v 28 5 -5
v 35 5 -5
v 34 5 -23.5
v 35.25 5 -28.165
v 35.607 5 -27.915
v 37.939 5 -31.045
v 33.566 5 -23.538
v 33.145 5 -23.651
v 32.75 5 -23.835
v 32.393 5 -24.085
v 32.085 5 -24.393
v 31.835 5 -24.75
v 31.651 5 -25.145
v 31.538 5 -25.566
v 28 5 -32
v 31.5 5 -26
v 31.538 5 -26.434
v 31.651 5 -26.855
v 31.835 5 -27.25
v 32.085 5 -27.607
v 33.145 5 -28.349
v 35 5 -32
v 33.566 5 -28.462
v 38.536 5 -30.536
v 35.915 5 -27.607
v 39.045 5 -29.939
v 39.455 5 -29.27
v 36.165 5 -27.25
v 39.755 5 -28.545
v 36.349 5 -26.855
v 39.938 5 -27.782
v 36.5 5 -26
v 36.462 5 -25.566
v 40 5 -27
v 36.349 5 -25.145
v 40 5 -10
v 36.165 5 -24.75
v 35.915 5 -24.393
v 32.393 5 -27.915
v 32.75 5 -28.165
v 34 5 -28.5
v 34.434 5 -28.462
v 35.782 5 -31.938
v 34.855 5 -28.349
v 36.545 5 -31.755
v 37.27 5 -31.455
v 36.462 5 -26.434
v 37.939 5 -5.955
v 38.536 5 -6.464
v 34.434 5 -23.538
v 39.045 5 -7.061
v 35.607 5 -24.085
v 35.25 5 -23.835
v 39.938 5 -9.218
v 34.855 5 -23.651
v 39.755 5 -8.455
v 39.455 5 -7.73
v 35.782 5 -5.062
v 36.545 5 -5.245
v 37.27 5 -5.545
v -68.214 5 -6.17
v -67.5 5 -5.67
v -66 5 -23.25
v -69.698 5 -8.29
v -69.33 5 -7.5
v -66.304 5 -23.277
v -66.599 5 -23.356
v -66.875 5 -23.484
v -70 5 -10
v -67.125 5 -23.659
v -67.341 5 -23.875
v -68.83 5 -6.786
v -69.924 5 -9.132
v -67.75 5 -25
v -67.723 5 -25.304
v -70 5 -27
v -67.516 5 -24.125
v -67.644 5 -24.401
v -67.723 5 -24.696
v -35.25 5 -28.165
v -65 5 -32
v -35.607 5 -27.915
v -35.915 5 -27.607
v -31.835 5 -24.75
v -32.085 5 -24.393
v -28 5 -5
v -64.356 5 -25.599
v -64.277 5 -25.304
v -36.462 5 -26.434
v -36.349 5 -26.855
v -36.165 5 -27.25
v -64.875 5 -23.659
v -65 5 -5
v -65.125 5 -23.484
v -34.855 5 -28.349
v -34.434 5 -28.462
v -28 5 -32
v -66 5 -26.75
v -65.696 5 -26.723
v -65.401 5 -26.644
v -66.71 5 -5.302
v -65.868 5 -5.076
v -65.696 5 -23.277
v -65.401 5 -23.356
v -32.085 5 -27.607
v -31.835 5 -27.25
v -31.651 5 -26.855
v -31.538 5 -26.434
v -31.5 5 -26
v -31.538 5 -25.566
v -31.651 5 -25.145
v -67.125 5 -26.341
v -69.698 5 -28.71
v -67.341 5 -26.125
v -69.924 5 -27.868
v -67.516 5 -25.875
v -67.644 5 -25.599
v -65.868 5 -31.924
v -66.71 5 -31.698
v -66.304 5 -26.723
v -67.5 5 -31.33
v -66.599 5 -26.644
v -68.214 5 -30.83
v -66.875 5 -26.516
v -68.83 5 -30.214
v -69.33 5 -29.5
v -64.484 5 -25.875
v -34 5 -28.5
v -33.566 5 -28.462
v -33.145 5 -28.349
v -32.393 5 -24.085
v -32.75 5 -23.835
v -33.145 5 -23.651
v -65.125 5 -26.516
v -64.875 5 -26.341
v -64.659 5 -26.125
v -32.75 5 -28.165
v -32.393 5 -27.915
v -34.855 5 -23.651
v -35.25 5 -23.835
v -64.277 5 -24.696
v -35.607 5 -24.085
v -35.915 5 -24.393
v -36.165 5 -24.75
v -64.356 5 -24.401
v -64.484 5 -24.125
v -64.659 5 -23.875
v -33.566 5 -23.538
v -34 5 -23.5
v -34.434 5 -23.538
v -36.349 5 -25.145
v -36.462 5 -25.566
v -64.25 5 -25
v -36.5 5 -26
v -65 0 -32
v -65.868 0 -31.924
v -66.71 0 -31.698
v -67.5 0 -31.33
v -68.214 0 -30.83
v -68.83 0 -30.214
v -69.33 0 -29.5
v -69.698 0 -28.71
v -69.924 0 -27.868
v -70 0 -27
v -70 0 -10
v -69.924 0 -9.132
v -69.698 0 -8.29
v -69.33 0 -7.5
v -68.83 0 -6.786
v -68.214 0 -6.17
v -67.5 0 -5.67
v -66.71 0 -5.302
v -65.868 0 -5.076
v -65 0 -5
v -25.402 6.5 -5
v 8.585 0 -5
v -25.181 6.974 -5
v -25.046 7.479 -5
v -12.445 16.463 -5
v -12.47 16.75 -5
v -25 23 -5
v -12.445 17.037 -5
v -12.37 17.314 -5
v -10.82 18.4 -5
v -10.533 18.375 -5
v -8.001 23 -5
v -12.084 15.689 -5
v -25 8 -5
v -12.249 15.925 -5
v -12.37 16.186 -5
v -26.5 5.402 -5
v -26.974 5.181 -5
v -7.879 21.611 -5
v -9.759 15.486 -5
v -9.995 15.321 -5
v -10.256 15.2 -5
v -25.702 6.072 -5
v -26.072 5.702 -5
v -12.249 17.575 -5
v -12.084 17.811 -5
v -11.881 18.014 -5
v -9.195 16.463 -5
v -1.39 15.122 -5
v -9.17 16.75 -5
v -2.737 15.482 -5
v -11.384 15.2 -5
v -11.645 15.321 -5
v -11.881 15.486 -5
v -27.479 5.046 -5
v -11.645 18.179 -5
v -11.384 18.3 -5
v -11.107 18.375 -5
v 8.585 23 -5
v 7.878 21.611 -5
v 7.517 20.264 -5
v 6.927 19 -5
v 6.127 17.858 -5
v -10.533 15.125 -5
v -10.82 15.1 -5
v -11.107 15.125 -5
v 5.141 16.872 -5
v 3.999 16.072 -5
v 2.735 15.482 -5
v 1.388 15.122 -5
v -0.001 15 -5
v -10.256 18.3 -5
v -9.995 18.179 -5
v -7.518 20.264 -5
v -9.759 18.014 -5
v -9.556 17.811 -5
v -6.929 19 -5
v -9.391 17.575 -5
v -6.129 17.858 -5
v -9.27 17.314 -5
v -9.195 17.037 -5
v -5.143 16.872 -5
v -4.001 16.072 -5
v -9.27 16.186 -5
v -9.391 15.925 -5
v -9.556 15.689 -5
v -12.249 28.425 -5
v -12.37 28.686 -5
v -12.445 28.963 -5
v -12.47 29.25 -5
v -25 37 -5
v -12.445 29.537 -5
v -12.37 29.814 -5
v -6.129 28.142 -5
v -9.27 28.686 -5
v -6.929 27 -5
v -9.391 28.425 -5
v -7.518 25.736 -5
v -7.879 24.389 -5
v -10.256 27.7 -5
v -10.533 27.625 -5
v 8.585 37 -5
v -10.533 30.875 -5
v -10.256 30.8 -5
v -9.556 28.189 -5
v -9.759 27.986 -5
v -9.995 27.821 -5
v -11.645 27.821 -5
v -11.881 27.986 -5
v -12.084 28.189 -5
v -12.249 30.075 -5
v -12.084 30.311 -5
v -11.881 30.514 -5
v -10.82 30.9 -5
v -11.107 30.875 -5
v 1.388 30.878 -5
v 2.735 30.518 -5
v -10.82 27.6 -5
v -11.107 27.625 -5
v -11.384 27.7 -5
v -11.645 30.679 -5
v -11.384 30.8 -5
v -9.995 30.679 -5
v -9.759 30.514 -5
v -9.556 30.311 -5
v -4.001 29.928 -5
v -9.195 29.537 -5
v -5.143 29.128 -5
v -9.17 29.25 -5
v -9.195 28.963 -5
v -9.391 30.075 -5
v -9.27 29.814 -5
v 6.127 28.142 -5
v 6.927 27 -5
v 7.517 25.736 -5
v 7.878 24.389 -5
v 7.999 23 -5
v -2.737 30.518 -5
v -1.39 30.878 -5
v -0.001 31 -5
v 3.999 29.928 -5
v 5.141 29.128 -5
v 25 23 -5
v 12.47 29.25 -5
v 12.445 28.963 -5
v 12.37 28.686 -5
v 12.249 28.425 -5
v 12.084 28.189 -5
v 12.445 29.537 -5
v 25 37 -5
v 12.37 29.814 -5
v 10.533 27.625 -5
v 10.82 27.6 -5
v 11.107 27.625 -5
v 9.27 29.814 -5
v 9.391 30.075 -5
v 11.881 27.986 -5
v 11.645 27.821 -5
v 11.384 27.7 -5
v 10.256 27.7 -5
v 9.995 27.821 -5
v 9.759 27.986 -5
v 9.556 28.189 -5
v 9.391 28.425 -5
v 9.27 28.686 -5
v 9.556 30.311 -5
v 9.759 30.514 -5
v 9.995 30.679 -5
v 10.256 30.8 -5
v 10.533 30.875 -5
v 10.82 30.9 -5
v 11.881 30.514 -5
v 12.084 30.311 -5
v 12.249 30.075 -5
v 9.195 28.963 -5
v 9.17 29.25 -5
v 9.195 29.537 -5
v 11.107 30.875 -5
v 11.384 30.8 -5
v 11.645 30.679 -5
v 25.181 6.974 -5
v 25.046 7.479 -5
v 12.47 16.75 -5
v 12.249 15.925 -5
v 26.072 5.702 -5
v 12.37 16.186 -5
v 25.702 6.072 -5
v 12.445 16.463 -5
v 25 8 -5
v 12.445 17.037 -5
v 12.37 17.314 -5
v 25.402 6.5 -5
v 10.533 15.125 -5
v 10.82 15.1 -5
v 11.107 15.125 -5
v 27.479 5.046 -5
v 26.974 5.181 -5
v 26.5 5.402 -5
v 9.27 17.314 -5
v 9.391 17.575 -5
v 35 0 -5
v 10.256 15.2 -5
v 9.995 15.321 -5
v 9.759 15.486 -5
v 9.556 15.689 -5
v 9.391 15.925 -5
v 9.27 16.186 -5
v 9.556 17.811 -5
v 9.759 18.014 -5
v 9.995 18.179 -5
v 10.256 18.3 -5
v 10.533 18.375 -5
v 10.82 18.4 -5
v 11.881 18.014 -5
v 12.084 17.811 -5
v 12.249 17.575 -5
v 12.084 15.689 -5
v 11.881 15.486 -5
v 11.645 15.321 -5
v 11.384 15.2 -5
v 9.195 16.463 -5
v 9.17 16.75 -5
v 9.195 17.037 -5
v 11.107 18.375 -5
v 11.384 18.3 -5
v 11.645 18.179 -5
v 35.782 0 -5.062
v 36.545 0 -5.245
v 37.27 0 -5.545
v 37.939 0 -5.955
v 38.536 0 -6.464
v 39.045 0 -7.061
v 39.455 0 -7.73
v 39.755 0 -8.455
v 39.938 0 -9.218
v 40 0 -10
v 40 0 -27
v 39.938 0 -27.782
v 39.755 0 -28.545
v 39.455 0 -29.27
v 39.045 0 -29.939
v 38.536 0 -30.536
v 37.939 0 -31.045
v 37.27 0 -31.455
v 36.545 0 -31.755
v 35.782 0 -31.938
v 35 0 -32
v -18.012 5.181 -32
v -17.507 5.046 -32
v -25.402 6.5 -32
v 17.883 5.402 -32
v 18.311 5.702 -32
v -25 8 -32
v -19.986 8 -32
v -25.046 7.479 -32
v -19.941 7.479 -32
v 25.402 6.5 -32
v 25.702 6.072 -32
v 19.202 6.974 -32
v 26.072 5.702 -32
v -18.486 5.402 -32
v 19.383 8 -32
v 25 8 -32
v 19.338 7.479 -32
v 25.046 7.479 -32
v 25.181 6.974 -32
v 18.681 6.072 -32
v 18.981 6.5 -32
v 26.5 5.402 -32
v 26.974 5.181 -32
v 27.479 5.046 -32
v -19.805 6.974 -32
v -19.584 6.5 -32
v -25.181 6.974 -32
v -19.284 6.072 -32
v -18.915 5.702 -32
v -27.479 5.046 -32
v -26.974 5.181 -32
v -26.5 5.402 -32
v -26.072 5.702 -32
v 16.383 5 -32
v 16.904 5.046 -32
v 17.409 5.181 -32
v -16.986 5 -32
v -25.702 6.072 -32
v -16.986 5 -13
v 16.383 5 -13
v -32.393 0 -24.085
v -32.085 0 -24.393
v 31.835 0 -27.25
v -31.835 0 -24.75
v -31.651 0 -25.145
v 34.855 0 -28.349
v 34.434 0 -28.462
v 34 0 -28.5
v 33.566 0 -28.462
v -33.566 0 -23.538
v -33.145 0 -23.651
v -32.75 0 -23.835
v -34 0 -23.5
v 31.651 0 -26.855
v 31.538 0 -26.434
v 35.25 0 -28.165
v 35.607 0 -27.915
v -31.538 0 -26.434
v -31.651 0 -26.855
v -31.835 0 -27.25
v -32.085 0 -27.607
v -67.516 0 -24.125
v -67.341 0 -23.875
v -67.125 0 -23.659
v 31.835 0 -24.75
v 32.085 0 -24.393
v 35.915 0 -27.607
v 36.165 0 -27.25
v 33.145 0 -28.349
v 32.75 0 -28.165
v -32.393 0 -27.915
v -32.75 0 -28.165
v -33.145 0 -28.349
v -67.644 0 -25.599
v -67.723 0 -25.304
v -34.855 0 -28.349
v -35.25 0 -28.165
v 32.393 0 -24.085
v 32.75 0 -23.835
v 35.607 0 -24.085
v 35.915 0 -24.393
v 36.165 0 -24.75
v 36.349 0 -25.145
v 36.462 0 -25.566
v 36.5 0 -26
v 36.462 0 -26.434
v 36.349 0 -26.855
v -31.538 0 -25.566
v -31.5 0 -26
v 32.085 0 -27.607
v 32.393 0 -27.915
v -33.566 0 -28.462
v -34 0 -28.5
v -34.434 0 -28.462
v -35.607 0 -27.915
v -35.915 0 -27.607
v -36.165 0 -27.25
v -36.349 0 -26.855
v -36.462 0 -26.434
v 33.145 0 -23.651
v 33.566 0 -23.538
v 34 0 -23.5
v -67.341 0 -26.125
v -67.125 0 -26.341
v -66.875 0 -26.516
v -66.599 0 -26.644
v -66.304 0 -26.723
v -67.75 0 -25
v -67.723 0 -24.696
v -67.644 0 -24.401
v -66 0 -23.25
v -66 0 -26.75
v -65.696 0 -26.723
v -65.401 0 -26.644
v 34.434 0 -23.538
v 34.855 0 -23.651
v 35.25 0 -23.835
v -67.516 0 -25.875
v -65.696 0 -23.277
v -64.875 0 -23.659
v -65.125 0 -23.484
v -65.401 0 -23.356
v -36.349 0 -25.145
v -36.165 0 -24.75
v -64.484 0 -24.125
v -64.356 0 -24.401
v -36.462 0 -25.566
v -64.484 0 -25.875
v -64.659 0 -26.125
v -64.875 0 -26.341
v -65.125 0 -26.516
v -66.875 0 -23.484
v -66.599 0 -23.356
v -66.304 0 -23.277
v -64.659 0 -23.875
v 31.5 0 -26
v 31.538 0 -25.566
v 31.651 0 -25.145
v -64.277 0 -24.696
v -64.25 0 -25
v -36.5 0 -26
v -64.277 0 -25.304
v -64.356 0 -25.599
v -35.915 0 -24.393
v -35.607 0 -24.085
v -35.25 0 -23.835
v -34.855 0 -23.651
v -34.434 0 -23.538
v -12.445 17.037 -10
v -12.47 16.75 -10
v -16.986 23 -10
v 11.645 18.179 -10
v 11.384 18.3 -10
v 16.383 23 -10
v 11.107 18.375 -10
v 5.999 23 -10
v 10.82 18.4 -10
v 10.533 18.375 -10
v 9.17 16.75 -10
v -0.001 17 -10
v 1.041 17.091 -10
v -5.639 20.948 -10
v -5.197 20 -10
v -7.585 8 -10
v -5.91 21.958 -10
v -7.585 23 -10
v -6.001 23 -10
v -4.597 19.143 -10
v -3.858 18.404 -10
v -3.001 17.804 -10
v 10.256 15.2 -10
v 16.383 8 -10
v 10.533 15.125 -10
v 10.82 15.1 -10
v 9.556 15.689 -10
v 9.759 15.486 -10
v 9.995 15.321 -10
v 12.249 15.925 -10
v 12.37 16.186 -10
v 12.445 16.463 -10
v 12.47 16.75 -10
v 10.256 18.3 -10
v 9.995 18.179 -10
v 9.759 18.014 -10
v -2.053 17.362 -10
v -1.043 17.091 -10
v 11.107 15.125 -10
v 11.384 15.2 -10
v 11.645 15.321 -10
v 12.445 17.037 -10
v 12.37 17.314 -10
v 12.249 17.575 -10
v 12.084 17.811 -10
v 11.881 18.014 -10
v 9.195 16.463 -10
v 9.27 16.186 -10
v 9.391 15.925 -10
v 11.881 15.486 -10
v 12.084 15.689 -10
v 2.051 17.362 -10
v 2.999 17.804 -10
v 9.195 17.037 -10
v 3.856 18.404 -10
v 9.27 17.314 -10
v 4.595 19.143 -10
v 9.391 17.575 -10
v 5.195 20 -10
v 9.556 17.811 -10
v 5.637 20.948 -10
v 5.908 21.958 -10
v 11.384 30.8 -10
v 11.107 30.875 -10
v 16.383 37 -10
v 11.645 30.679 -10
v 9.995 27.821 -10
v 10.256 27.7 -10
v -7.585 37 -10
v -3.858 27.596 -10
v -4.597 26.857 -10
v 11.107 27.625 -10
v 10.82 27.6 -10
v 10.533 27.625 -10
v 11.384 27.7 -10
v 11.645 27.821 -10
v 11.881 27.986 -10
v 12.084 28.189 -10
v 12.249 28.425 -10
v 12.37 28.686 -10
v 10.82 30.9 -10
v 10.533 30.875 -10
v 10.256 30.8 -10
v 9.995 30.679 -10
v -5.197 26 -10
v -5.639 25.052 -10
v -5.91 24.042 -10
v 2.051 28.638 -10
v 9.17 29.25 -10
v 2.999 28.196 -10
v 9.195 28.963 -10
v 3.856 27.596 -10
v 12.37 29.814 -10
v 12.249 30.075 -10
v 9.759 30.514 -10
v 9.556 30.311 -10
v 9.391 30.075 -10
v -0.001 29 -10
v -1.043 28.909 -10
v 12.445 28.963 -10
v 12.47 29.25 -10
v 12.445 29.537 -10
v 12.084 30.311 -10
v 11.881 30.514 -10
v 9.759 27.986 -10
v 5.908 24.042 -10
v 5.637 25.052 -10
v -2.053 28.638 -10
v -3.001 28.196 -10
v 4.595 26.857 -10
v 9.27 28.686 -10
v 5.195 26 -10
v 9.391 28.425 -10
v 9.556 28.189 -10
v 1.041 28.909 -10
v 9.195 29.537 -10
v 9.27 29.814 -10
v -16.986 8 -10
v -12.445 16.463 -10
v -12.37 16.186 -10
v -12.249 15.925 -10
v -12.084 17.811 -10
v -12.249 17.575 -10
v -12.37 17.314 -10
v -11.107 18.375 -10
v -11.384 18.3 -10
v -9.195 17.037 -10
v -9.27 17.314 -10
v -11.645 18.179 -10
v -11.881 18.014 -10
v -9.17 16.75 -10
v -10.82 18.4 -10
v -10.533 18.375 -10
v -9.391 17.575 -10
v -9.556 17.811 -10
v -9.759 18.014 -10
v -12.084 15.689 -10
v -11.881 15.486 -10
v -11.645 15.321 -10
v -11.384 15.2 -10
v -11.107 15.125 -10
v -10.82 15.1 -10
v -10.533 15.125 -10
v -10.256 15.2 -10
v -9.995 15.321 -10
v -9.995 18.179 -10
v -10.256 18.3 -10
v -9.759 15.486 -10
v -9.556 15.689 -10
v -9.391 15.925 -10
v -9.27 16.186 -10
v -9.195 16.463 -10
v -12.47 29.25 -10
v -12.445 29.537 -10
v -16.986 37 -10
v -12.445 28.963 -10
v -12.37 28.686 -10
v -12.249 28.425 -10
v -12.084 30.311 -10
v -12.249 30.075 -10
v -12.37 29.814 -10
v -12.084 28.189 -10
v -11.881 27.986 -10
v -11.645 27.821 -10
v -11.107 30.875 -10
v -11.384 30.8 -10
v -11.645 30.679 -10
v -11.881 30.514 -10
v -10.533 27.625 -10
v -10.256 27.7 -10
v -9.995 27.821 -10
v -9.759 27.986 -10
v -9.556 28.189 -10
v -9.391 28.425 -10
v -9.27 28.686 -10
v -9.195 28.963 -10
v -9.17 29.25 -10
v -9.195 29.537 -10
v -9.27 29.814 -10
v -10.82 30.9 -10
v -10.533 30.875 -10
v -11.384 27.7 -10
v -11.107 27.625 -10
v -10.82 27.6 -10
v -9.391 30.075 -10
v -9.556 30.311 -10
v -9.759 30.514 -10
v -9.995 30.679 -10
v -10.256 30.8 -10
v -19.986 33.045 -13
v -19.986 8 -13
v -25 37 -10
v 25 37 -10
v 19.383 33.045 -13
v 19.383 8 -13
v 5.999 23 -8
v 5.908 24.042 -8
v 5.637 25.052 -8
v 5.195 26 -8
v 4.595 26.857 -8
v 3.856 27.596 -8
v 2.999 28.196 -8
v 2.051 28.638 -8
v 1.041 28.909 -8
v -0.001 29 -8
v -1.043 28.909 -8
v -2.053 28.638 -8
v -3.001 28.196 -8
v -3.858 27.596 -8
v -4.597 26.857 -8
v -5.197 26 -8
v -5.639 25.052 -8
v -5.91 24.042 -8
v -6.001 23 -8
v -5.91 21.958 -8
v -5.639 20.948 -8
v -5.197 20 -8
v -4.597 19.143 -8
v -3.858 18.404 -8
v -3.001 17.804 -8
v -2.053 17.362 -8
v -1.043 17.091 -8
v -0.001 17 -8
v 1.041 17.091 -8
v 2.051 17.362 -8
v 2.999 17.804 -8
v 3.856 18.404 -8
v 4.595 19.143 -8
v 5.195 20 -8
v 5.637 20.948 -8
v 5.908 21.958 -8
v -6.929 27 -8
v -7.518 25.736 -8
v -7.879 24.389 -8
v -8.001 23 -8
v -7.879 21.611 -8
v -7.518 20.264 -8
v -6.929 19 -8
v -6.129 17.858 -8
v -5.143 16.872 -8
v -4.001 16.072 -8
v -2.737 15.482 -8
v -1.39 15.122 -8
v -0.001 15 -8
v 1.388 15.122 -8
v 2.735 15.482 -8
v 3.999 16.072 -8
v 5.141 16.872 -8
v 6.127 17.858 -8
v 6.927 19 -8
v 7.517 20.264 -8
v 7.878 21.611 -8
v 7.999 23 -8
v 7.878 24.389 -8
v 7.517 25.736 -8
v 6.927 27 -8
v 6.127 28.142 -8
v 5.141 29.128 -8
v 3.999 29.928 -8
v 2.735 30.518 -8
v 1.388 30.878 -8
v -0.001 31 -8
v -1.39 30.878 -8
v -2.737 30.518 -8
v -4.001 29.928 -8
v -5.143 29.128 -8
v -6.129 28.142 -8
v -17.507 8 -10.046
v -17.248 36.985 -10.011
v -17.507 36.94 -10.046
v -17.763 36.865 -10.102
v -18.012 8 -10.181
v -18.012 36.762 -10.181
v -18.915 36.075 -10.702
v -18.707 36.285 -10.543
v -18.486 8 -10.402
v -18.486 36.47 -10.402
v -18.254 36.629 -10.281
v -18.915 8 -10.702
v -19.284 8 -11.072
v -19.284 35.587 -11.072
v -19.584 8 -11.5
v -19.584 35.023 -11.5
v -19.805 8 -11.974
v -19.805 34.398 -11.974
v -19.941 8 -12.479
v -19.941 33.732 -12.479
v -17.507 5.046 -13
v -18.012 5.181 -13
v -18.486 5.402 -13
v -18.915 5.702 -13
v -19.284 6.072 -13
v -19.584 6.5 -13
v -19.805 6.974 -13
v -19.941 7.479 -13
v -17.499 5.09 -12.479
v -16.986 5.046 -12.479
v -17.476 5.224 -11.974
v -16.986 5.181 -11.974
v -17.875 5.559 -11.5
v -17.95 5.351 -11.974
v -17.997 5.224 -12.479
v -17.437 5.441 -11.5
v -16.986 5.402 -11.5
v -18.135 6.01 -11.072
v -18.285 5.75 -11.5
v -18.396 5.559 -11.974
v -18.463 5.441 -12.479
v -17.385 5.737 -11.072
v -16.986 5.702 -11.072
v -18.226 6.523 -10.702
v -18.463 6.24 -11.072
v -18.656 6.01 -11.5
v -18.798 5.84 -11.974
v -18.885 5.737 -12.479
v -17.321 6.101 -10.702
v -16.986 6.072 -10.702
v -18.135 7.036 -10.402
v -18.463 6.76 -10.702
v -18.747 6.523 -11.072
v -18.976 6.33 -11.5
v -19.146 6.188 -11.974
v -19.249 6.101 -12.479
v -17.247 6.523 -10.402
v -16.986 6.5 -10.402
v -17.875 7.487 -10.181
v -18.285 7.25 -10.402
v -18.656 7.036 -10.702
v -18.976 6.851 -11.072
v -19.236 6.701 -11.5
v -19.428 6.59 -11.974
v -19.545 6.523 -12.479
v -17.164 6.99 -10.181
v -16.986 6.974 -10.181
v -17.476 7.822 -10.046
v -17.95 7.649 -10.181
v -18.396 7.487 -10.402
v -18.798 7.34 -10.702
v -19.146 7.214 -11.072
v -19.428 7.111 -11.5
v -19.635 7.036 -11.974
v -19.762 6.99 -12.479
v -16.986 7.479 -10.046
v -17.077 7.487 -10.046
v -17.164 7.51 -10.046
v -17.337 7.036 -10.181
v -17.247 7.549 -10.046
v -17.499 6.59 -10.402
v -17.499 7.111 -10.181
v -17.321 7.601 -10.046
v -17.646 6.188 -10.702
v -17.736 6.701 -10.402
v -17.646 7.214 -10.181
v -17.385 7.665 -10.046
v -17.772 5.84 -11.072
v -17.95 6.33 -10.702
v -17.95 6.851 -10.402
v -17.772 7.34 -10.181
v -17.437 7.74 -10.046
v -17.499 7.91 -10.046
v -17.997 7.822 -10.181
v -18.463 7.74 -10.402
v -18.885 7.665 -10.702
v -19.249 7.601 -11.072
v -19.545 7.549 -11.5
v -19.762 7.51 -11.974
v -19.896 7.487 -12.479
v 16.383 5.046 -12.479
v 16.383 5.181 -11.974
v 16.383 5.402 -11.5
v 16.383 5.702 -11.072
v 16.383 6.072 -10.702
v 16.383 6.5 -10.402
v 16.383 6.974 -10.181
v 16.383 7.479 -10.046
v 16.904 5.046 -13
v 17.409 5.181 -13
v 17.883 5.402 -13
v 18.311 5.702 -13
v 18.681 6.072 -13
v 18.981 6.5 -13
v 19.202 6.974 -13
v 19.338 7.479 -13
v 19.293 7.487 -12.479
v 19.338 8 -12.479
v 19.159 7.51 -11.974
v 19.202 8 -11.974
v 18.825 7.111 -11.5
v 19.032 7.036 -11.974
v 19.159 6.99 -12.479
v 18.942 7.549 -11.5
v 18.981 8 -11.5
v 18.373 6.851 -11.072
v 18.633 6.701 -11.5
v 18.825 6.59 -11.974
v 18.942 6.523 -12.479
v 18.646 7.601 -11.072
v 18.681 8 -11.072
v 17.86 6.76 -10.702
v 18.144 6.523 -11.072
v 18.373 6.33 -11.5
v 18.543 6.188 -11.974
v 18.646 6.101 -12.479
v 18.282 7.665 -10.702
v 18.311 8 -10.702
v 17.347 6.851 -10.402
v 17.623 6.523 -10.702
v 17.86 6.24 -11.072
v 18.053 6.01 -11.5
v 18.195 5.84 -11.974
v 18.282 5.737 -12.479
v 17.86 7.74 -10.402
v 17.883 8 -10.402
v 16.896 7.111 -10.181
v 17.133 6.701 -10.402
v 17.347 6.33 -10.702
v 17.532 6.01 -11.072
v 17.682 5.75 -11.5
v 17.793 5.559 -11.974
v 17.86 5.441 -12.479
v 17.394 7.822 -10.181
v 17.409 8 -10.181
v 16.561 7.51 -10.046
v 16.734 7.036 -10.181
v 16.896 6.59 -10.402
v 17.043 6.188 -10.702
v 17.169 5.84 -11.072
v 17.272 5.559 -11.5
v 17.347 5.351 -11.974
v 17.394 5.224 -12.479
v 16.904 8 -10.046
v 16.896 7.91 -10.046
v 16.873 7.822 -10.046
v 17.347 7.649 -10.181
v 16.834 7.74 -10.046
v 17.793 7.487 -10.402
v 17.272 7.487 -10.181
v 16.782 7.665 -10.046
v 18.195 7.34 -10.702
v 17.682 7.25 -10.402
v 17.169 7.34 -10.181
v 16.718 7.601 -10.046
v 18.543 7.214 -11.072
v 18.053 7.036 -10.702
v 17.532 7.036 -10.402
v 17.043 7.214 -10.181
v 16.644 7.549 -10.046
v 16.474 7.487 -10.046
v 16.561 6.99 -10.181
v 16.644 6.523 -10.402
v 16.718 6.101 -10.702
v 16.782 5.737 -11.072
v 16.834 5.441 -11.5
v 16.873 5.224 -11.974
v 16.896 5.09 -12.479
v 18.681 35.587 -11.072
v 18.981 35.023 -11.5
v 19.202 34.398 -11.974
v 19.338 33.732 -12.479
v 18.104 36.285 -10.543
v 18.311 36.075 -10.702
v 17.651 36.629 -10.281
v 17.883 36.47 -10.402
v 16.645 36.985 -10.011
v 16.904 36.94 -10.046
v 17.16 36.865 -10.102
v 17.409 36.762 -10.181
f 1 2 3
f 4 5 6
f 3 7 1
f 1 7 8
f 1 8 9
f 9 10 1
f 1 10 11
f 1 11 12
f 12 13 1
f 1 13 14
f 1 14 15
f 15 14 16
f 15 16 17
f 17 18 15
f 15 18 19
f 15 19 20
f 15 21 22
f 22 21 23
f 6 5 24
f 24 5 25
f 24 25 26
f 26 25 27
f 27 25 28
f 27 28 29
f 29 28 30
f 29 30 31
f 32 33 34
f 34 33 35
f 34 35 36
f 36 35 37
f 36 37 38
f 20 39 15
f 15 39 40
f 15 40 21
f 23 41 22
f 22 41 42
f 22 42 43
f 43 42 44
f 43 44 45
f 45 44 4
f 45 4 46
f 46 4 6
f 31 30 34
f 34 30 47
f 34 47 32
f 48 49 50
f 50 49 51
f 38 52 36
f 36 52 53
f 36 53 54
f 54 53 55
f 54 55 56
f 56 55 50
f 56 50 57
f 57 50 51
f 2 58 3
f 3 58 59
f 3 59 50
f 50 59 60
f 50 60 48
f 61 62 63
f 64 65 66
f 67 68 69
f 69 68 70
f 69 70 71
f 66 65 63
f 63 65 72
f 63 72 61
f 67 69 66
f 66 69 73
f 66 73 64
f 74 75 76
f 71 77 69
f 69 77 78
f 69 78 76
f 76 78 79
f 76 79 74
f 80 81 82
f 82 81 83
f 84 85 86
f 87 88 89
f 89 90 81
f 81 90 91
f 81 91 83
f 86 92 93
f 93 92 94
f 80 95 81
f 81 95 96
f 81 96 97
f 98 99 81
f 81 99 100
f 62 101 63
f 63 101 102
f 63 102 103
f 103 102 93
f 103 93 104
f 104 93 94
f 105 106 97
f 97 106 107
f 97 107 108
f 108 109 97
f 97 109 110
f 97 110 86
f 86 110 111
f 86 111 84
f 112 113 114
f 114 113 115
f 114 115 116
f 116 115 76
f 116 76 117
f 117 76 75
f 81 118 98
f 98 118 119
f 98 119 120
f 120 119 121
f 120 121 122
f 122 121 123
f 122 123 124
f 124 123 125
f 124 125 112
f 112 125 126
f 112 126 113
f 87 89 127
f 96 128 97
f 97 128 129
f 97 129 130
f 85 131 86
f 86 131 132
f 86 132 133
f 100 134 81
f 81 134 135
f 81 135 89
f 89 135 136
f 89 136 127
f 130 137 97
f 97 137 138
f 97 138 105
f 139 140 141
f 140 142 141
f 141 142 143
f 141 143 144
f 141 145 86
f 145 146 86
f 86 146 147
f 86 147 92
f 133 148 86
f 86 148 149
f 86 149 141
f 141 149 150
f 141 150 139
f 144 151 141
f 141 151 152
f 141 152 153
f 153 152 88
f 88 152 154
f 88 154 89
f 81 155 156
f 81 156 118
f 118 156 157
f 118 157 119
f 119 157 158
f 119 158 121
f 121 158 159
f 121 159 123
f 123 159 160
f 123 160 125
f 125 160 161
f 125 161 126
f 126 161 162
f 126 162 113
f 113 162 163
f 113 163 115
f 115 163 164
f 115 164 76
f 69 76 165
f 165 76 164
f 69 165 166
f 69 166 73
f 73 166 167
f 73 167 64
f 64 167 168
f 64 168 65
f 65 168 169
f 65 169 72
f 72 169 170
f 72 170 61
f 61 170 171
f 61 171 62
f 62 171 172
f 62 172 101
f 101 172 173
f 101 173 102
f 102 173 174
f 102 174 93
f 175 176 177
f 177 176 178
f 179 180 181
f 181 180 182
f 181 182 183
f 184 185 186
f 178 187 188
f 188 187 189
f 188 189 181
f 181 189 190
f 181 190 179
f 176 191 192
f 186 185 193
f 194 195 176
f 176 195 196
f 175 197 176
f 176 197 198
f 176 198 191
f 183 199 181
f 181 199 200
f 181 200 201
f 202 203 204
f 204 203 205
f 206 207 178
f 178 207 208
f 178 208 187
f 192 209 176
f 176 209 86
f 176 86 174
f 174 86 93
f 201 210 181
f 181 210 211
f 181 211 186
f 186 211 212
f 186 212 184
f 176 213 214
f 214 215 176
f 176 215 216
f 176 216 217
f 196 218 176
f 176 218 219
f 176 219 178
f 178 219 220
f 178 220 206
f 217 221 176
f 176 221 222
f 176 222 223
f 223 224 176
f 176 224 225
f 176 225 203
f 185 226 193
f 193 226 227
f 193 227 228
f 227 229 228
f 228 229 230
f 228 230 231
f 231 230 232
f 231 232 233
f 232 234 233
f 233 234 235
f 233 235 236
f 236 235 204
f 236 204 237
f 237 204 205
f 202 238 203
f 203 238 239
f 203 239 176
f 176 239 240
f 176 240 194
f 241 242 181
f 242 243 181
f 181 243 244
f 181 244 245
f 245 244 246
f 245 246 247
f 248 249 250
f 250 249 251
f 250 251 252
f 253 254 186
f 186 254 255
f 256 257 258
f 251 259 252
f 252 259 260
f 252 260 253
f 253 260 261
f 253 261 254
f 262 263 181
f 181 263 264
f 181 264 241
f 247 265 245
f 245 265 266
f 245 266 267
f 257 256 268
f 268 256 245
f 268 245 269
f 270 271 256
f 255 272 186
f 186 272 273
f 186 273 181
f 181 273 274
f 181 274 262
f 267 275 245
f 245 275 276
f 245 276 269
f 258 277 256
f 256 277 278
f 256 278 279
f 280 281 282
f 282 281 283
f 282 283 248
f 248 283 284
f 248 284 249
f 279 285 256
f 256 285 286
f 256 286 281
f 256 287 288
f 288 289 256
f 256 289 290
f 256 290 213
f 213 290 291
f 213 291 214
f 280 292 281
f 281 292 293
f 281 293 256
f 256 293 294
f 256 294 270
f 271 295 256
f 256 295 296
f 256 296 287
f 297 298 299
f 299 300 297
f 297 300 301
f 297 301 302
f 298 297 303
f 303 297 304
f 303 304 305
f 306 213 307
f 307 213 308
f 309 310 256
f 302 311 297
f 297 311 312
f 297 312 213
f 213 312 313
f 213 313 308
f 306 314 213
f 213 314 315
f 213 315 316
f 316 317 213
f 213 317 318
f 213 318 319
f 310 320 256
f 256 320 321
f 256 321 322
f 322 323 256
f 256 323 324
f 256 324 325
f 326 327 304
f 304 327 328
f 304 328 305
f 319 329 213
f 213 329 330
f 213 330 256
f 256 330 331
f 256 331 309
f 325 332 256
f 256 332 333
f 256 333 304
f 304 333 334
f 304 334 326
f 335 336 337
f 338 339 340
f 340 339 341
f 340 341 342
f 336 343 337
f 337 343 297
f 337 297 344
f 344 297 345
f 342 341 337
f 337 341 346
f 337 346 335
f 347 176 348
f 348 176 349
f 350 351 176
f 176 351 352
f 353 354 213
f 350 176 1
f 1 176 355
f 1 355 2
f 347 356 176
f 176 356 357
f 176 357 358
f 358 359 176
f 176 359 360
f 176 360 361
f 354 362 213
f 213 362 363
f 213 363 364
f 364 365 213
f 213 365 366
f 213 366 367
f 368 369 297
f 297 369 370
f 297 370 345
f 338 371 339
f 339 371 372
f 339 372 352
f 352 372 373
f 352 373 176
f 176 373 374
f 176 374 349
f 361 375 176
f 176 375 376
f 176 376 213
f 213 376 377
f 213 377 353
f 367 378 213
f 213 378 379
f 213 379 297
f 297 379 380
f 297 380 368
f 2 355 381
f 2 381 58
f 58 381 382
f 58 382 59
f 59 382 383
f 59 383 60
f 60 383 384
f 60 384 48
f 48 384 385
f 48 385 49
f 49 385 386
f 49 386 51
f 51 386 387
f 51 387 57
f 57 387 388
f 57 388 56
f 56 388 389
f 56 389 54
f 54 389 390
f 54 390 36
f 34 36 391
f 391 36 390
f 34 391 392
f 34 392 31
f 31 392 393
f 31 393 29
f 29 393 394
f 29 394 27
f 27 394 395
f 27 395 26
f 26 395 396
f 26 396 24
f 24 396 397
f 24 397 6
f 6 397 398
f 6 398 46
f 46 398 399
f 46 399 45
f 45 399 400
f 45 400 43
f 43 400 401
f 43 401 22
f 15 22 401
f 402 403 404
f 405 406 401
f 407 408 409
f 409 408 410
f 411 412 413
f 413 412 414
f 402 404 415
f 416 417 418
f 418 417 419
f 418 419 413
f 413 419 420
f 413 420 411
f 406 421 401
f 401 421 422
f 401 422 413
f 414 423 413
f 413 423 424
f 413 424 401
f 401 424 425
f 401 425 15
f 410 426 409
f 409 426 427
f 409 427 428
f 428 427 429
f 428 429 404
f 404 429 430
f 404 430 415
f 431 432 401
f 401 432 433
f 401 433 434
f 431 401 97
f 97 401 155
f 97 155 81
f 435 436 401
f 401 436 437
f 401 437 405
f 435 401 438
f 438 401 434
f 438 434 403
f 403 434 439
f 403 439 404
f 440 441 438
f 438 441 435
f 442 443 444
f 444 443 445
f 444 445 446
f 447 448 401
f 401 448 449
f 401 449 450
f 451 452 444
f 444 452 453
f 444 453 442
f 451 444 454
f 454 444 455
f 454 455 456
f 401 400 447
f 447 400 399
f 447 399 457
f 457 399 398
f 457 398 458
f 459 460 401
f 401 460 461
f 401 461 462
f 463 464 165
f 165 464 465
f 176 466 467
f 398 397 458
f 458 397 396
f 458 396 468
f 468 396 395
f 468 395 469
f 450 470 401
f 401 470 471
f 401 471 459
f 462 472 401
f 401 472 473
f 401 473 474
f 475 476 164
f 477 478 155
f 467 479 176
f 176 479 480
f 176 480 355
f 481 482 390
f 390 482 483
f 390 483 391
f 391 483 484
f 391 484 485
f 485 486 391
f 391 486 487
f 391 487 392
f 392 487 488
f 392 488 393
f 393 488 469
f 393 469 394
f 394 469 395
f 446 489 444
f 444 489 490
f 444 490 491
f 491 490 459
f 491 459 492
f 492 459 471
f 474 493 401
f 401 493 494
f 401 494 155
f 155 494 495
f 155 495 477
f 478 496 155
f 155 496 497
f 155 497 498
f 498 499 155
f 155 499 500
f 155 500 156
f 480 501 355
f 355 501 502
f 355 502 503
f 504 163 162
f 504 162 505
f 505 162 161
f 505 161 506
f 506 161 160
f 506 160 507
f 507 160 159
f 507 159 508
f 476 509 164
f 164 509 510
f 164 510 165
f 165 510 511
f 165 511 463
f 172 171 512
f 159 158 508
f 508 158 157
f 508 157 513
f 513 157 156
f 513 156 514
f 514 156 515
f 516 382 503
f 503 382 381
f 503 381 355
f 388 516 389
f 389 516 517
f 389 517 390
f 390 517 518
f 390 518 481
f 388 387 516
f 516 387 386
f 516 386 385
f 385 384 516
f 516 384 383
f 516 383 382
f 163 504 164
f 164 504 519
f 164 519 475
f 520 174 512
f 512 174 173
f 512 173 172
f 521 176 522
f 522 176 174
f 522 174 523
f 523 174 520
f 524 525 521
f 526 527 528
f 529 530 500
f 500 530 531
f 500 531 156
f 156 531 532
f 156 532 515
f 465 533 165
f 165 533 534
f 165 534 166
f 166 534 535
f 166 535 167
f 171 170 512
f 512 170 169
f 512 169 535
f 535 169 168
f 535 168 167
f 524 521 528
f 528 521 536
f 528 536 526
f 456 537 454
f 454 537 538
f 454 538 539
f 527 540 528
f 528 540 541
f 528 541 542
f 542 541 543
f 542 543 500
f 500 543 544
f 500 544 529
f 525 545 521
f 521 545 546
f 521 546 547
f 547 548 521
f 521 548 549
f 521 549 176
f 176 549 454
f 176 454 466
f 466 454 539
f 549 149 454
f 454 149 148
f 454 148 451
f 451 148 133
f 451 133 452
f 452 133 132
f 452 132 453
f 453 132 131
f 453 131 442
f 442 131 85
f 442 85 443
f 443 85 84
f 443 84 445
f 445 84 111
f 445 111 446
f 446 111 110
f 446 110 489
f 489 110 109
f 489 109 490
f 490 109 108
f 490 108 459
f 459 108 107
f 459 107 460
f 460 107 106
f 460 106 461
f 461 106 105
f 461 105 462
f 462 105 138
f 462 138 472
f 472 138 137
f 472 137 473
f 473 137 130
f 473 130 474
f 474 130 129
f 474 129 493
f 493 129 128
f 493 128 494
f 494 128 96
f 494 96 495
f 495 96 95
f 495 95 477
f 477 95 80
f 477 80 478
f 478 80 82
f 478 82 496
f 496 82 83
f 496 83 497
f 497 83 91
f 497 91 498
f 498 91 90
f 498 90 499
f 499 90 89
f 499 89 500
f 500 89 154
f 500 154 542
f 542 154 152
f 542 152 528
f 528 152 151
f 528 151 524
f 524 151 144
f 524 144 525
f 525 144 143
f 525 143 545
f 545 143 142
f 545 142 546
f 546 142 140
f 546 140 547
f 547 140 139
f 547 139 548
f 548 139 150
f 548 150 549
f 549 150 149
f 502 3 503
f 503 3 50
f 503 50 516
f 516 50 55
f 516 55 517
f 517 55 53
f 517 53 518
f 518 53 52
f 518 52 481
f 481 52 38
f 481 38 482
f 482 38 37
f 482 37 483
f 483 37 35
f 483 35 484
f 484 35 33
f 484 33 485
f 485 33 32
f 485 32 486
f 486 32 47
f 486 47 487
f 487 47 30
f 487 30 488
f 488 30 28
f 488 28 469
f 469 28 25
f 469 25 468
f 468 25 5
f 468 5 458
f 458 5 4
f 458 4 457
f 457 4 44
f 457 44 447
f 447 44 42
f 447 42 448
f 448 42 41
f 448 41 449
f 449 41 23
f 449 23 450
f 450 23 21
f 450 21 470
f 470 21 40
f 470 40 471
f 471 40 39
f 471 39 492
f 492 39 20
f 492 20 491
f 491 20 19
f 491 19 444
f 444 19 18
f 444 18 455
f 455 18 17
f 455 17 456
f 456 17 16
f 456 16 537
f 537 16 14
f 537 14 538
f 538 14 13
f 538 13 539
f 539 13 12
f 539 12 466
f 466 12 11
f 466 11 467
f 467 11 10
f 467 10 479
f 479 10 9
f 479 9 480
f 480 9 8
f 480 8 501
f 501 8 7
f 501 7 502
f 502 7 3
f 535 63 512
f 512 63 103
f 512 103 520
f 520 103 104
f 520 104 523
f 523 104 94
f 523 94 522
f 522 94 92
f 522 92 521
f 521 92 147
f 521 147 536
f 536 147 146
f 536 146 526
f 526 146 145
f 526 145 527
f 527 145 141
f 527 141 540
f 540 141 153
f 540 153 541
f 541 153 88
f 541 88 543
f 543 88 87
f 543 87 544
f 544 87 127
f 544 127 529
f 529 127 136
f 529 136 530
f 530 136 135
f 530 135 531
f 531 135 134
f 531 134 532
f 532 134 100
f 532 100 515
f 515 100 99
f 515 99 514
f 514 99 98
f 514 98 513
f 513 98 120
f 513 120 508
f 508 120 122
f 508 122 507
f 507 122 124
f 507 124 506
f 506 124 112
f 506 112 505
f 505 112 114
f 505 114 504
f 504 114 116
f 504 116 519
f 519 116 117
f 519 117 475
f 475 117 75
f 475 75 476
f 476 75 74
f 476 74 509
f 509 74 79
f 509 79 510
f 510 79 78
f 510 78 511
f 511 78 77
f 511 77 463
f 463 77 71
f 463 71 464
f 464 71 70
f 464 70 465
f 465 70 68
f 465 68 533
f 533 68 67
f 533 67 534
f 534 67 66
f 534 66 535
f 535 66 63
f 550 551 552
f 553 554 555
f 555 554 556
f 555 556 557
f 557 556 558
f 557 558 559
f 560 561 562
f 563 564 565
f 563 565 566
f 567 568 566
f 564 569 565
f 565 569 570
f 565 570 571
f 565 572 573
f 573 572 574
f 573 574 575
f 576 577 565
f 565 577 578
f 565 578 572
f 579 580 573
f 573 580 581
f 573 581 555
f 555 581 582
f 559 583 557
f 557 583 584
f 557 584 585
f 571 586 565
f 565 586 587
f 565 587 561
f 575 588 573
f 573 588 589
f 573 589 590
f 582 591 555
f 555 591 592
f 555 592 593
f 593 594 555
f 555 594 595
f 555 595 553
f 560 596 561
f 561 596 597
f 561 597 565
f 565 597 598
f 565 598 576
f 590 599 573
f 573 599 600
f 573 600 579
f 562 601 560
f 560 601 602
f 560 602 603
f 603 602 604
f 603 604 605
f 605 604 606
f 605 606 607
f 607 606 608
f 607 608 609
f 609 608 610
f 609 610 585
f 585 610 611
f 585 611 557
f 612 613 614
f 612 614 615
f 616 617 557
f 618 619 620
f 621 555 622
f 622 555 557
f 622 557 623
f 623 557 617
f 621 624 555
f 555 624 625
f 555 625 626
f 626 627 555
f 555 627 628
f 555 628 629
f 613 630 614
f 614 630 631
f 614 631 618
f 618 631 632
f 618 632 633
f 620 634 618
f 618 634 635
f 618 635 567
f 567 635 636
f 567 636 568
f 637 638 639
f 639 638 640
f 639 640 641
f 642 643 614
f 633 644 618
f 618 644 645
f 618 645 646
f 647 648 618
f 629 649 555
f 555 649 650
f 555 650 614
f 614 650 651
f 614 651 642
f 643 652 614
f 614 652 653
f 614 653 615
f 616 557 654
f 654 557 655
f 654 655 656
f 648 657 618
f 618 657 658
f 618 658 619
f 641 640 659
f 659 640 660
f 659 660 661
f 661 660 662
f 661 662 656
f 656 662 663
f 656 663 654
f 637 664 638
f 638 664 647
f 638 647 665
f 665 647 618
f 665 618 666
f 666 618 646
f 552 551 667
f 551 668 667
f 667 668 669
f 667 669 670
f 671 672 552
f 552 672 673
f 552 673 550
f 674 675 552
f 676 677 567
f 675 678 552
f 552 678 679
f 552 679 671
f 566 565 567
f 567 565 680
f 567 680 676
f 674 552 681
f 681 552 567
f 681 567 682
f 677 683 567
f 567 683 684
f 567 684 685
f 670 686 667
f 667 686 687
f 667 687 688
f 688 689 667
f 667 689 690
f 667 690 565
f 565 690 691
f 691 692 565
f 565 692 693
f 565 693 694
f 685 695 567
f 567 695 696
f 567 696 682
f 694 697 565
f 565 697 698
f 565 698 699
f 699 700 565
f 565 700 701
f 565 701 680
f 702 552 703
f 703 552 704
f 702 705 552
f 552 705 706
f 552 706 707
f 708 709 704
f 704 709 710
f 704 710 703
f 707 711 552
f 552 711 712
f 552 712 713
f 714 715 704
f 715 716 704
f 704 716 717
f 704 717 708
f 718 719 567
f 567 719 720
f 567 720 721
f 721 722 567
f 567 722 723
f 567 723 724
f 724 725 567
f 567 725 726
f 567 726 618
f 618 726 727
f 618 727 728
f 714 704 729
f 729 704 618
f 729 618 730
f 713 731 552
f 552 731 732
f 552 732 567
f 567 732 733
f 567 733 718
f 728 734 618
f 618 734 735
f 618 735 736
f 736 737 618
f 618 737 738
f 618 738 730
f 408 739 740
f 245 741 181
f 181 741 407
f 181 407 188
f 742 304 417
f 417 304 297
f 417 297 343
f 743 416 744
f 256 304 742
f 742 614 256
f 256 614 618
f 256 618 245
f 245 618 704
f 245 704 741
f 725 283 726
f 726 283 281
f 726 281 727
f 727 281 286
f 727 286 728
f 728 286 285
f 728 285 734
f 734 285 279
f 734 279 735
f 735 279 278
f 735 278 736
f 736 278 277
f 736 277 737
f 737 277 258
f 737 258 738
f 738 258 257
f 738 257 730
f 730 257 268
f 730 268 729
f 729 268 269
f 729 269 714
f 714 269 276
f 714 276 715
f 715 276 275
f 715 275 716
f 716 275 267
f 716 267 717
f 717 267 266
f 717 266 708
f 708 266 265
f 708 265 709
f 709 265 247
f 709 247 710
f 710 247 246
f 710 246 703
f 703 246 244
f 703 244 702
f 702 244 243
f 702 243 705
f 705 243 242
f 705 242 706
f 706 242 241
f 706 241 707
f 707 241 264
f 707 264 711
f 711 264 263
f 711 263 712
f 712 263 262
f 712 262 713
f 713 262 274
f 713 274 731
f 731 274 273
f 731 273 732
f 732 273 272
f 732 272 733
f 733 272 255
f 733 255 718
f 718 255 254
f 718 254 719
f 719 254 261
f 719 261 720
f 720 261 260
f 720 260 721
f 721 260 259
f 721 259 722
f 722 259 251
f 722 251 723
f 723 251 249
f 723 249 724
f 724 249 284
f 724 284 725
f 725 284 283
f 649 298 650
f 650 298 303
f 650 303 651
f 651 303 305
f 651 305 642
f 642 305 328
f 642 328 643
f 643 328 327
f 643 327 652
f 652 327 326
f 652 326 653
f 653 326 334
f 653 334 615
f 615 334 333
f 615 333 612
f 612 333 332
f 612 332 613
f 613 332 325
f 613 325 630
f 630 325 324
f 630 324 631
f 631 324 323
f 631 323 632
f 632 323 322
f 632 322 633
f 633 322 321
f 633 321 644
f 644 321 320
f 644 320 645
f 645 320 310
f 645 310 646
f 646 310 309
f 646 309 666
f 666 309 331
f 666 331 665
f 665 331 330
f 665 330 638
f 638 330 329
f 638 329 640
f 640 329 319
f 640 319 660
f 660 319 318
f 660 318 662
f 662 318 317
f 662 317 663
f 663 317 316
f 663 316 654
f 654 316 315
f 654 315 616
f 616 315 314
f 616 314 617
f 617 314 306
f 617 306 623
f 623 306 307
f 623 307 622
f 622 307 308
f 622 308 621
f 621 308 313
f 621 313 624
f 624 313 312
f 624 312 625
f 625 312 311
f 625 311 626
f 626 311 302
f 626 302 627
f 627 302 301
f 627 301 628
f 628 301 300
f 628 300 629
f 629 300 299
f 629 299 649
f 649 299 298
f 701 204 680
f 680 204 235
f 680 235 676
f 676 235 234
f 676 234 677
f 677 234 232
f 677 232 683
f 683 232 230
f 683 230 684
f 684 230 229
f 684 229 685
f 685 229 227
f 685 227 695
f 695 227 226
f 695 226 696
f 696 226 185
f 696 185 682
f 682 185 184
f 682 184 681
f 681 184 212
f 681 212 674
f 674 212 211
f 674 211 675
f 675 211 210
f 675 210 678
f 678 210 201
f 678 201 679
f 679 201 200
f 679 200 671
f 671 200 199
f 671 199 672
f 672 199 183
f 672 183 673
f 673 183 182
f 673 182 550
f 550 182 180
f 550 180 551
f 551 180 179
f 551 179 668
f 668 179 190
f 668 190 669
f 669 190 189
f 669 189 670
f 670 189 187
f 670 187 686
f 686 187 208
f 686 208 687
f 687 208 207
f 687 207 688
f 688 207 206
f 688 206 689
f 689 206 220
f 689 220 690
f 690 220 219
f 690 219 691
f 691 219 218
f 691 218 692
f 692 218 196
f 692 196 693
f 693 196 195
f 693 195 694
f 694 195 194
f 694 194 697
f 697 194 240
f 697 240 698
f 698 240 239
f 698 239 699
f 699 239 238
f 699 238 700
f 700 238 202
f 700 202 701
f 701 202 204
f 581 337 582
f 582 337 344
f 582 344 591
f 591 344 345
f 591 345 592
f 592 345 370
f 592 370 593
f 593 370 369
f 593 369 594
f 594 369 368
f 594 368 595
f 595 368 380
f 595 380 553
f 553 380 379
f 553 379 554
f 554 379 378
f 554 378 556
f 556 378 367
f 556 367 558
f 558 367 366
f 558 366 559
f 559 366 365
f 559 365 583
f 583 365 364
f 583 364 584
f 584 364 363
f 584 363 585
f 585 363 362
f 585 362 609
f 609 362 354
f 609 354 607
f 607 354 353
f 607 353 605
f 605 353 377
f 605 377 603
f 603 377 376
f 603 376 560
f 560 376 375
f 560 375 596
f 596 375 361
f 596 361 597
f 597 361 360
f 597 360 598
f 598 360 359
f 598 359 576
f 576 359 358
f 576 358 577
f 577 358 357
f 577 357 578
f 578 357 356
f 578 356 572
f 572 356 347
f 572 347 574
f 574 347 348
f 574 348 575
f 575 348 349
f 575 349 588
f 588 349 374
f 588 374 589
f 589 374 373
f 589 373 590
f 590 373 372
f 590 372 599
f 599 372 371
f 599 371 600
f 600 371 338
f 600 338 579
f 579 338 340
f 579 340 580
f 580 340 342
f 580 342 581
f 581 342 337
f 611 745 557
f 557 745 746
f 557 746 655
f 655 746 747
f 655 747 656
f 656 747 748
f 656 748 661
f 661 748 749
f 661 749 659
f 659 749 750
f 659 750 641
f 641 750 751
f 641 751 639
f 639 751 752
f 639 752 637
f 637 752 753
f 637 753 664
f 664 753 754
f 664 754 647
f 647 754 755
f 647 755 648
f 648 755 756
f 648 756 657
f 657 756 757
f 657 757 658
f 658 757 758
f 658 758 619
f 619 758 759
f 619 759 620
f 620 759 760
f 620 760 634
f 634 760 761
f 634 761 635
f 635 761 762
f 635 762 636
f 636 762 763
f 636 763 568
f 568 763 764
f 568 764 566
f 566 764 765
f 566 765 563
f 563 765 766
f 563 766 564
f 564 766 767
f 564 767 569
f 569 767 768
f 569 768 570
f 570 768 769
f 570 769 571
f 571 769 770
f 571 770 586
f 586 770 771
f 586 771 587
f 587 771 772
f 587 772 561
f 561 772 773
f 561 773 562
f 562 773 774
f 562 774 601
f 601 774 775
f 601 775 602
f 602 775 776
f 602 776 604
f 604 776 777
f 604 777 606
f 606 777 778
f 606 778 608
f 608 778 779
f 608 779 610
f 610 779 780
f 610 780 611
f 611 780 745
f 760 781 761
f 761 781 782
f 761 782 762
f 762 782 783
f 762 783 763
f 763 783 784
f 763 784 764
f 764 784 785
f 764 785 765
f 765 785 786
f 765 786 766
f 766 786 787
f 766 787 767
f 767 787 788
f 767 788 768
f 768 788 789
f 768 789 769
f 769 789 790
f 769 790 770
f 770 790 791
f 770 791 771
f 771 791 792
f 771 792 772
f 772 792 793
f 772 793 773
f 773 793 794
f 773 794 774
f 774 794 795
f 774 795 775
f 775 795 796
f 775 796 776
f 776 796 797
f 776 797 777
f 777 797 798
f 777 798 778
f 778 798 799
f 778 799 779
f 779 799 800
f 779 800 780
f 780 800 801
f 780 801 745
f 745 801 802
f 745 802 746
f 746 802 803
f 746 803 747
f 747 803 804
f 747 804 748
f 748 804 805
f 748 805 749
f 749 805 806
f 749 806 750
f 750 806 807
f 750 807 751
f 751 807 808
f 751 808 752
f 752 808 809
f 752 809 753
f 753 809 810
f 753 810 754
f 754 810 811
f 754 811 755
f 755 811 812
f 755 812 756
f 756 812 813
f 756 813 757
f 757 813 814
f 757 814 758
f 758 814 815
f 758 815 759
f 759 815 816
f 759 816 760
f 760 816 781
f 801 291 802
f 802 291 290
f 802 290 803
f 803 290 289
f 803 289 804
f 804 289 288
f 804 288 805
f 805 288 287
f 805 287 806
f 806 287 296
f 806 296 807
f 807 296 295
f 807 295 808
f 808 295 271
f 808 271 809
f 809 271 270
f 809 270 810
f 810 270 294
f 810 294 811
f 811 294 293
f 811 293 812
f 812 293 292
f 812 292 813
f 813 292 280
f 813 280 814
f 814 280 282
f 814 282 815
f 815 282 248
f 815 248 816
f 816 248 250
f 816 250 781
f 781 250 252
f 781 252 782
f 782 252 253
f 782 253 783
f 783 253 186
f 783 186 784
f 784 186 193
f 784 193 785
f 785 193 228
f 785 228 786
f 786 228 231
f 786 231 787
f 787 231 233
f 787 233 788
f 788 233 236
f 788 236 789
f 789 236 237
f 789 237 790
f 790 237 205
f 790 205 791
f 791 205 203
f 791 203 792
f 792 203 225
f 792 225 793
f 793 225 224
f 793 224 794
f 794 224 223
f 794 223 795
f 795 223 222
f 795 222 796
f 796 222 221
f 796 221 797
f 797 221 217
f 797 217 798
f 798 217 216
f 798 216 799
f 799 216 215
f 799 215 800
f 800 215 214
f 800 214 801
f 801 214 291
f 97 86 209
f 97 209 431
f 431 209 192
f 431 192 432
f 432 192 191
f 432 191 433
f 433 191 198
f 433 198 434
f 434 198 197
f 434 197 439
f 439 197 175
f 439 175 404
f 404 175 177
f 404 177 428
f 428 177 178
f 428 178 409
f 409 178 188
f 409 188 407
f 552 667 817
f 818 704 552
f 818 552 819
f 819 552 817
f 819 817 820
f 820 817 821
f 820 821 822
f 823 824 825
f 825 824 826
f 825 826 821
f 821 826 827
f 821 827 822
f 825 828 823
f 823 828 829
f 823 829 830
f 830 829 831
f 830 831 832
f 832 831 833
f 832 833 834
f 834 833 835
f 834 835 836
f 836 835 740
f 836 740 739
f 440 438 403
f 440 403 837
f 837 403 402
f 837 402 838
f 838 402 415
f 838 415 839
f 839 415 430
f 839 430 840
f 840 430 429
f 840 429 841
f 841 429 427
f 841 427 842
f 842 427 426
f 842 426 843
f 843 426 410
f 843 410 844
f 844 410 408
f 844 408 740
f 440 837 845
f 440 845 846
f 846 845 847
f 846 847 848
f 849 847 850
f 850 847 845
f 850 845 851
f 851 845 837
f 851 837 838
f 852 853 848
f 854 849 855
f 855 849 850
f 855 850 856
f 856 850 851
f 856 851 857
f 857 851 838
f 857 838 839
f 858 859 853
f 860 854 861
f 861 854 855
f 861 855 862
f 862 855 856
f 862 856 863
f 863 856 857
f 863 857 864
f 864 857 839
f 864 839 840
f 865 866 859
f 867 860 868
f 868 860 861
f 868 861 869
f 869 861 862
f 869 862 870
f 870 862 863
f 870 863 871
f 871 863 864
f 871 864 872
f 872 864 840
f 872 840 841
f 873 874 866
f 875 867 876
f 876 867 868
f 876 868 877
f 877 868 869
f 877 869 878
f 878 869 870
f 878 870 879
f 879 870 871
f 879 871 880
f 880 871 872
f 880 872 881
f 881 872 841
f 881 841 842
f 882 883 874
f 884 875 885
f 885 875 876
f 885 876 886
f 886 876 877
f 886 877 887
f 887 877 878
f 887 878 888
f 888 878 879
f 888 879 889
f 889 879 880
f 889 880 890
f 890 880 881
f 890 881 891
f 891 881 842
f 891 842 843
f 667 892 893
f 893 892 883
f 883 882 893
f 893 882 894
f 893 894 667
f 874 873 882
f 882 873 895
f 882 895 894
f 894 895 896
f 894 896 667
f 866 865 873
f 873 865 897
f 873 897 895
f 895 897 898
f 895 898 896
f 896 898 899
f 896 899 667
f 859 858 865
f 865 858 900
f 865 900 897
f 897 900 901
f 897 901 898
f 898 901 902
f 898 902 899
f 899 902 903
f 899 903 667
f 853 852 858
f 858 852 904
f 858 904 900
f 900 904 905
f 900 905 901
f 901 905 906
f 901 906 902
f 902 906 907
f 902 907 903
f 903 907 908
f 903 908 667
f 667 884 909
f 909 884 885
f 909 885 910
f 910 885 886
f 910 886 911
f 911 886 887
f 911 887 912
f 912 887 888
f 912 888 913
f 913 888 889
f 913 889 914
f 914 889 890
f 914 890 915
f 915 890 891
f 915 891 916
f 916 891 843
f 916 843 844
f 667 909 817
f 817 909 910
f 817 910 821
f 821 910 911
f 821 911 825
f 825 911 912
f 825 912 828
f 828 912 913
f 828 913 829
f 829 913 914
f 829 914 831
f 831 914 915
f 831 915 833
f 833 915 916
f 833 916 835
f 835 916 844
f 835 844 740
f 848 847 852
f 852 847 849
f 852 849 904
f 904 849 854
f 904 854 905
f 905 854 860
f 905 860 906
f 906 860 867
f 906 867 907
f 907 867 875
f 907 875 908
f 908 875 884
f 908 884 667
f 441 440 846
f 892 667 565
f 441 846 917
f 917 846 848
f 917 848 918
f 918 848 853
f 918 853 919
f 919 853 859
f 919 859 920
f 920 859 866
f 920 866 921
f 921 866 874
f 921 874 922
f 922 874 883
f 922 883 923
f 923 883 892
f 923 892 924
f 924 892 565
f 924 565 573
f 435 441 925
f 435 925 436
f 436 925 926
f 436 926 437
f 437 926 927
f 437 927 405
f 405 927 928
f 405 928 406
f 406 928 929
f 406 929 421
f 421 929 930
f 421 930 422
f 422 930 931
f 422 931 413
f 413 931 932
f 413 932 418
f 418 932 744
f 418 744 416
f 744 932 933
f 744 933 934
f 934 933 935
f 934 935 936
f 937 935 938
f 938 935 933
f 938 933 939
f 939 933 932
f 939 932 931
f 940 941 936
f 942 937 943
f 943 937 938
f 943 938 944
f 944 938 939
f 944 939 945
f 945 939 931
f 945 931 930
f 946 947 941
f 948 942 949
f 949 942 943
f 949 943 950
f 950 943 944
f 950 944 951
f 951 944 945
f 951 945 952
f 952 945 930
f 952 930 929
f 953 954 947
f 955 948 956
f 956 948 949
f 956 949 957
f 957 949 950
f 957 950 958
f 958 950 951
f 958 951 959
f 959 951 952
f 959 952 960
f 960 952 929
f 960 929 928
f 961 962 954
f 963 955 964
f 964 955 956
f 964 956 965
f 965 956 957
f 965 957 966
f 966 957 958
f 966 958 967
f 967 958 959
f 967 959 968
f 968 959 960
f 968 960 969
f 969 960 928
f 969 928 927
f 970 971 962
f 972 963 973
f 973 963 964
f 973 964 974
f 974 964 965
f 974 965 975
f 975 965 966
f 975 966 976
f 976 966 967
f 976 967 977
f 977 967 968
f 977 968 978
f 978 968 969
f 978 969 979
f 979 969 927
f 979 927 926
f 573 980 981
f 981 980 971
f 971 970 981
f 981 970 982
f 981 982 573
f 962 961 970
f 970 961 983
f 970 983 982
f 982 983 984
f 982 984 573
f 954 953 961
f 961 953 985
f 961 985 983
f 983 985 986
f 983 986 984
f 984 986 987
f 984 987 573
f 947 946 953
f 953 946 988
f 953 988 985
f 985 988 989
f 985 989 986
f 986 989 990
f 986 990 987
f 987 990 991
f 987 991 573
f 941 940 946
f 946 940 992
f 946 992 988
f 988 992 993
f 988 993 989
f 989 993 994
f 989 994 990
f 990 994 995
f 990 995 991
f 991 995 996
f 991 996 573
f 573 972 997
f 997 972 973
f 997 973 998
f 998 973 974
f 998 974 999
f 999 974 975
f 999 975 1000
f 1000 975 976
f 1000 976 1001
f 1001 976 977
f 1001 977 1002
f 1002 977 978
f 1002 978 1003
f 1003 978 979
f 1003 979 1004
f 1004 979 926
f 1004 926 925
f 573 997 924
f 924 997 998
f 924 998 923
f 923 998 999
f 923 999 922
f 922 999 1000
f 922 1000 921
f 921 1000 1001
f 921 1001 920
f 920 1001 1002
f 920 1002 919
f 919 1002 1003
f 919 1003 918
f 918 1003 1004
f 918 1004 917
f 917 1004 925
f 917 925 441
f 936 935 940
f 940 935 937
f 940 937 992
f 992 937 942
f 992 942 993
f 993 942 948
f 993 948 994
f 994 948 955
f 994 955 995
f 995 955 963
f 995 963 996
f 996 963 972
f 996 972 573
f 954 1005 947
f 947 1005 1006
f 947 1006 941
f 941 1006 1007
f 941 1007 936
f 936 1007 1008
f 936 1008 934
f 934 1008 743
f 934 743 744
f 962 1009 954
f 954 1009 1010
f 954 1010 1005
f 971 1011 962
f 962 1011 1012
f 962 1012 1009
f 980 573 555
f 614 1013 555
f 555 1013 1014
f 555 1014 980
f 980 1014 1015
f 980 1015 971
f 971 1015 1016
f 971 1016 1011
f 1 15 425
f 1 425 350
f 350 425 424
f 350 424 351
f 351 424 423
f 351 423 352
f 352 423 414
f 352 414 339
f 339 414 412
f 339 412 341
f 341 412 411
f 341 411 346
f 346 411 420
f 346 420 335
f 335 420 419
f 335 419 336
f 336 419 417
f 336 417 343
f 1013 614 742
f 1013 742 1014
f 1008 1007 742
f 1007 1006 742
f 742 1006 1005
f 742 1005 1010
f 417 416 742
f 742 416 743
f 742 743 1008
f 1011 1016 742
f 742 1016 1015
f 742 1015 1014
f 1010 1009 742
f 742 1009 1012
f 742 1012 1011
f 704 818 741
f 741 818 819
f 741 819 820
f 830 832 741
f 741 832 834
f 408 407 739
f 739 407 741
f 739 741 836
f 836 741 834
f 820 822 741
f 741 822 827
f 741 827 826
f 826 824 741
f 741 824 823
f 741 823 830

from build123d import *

# Parameters (mm, degrees)
EXTRUDE_1_DEPTH              = 5
SKETCH_3_R                   = 2.5
SKETCH_3_R_2                 = 1.75
CUT_EXTRUDE_2_DEPTH          = 78.129760793
EXTRUDE_2_DEPTH              = 32
SKETCH_11_R                  = 1.65
CUT_EXTRUDE_3_DEPTH          = 84.654049513
HOLE_WIZARD_M5_1_D           = 12
HOLE_WIZARD_M5_1_CBORE_D     = 16
HOLE_WIZARD_M5_1_CBORE_DEPTH = 3
FILLET_2_R                   = 3
CUT_EXTRUDE_4_DEPTH          = 82.351090958


with BuildPart() as part:
    # 草图2 → 凸台-拉伸1 (new body)
    with BuildSketch(Plane(origin=(0, 0, 0), x_dir=(1, 0, 0), z_dir=(0, 1, 0))):
        with BuildLine():
            Line((-70, 27), (-70, 10))
            ThreePointArc((-70, 10), (-68.535533906, 6.464466094), (-65, 5))
            Line((-65, 5), (35, 5))
            ThreePointArc((35, 5), (38.535533906, 6.464466094), (40, 10))
            Line((40, 10), (40, 27))
            ThreePointArc((40, 27), (38.535533906, 30.535533906), (35, 32))
            Line((35, 32), (-65, 32))
            ThreePointArc((-65, 32), (-68.535533906, 30.535533906), (-70, 27))
        make_face()
    extrude(amount=EXTRUDE_1_DEPTH)

    # 草图3 → 切除-拉伸2 (cut, through all)
    with BuildSketch(Plane(origin=(0, 5, 0), x_dir=(1, 0, 0), z_dir=(0, 1, 0))):
        with Locations(Location((-34, 26, 0), (0, 0, 270))):
            Circle(SKETCH_3_R)
        with Locations(Location((34, 26, 0), (0, 0, 270))):
            Circle(SKETCH_3_R)
        with Locations(Location((-66, 25, 0), (0, 0, 270))):
            Circle(SKETCH_3_R_2)
    extrude(amount=-CUT_EXTRUDE_2_DEPTH, mode=Mode.SUBTRACT)

    # 草图6 → 凸台-拉伸2 (add)
    with BuildSketch(Plane(origin=(0, 5, 0), x_dir=(1, 0, 0), z_dir=(0, 1, 0))):
        Polygon((-25, 5), (-25, 32), (-19.986167978, 32), (-19.986167978, 10), (19.383137048, 10), (19.383137048, 32), (25, 32), (25, 5), align=None)
    extrude(amount=EXTRUDE_2_DEPTH)

    # 草图11 → 切除-拉伸3 (cut, through all)
    with BuildSketch(Plane.XY.offset(-5)):
        with Locations((-10.82, 29.25)):
            Circle(SKETCH_11_R)
        with Locations((10.82, 29.25)):
            Circle(SKETCH_11_R)
        with Locations((-10.82, 16.75)):
            Circle(SKETCH_11_R)
        with Locations((10.82, 16.75)):
            Circle(SKETCH_11_R)
    extrude(amount=-CUT_EXTRUDE_3_DEPTH, mode=Mode.SUBTRACT)

    # M5 六角头螺钉的柱形沉头孔1 (through all)
    with Locations(Plane(origin=(-0.000886088, 23, -5), x_dir=(1, 0, 0), z_dir=(0, 0, 1))):
        with Locations((0, 0)):
            CounterBoreHole(HOLE_WIZARD_M5_1_D / 2, HOLE_WIZARD_M5_1_CBORE_D / 2, HOLE_WIZARD_M5_1_CBORE_DEPTH)

    # 圆角2
    fillet_2_edges = [part.edges().sort_by_distance(p)[0] for p in [
        (-25, 5, -18.5),
        (19.383137048, 21, -10),
        (-19.986167978, 21, -10),
        (-19.986167978, 5, -21),
        (19.383137048, 5, -21),
        (25, 5, -18.5),
        (-0.301515465, 5, -10),
    ]]
    fillet(fillet_2_edges, radius=FILLET_2_R)

    # 草图18 → 切除-拉伸4 (cut, through all)
    with BuildSketch(Plane.ZY.offset(25)):
        Polygon((-10, 37), (-32, 8), (-32, 37), align=None)
    extrude(amount=-CUT_EXTRUDE_4_DEPTH, mode=Mode.SUBTRACT)


solid = part.part
